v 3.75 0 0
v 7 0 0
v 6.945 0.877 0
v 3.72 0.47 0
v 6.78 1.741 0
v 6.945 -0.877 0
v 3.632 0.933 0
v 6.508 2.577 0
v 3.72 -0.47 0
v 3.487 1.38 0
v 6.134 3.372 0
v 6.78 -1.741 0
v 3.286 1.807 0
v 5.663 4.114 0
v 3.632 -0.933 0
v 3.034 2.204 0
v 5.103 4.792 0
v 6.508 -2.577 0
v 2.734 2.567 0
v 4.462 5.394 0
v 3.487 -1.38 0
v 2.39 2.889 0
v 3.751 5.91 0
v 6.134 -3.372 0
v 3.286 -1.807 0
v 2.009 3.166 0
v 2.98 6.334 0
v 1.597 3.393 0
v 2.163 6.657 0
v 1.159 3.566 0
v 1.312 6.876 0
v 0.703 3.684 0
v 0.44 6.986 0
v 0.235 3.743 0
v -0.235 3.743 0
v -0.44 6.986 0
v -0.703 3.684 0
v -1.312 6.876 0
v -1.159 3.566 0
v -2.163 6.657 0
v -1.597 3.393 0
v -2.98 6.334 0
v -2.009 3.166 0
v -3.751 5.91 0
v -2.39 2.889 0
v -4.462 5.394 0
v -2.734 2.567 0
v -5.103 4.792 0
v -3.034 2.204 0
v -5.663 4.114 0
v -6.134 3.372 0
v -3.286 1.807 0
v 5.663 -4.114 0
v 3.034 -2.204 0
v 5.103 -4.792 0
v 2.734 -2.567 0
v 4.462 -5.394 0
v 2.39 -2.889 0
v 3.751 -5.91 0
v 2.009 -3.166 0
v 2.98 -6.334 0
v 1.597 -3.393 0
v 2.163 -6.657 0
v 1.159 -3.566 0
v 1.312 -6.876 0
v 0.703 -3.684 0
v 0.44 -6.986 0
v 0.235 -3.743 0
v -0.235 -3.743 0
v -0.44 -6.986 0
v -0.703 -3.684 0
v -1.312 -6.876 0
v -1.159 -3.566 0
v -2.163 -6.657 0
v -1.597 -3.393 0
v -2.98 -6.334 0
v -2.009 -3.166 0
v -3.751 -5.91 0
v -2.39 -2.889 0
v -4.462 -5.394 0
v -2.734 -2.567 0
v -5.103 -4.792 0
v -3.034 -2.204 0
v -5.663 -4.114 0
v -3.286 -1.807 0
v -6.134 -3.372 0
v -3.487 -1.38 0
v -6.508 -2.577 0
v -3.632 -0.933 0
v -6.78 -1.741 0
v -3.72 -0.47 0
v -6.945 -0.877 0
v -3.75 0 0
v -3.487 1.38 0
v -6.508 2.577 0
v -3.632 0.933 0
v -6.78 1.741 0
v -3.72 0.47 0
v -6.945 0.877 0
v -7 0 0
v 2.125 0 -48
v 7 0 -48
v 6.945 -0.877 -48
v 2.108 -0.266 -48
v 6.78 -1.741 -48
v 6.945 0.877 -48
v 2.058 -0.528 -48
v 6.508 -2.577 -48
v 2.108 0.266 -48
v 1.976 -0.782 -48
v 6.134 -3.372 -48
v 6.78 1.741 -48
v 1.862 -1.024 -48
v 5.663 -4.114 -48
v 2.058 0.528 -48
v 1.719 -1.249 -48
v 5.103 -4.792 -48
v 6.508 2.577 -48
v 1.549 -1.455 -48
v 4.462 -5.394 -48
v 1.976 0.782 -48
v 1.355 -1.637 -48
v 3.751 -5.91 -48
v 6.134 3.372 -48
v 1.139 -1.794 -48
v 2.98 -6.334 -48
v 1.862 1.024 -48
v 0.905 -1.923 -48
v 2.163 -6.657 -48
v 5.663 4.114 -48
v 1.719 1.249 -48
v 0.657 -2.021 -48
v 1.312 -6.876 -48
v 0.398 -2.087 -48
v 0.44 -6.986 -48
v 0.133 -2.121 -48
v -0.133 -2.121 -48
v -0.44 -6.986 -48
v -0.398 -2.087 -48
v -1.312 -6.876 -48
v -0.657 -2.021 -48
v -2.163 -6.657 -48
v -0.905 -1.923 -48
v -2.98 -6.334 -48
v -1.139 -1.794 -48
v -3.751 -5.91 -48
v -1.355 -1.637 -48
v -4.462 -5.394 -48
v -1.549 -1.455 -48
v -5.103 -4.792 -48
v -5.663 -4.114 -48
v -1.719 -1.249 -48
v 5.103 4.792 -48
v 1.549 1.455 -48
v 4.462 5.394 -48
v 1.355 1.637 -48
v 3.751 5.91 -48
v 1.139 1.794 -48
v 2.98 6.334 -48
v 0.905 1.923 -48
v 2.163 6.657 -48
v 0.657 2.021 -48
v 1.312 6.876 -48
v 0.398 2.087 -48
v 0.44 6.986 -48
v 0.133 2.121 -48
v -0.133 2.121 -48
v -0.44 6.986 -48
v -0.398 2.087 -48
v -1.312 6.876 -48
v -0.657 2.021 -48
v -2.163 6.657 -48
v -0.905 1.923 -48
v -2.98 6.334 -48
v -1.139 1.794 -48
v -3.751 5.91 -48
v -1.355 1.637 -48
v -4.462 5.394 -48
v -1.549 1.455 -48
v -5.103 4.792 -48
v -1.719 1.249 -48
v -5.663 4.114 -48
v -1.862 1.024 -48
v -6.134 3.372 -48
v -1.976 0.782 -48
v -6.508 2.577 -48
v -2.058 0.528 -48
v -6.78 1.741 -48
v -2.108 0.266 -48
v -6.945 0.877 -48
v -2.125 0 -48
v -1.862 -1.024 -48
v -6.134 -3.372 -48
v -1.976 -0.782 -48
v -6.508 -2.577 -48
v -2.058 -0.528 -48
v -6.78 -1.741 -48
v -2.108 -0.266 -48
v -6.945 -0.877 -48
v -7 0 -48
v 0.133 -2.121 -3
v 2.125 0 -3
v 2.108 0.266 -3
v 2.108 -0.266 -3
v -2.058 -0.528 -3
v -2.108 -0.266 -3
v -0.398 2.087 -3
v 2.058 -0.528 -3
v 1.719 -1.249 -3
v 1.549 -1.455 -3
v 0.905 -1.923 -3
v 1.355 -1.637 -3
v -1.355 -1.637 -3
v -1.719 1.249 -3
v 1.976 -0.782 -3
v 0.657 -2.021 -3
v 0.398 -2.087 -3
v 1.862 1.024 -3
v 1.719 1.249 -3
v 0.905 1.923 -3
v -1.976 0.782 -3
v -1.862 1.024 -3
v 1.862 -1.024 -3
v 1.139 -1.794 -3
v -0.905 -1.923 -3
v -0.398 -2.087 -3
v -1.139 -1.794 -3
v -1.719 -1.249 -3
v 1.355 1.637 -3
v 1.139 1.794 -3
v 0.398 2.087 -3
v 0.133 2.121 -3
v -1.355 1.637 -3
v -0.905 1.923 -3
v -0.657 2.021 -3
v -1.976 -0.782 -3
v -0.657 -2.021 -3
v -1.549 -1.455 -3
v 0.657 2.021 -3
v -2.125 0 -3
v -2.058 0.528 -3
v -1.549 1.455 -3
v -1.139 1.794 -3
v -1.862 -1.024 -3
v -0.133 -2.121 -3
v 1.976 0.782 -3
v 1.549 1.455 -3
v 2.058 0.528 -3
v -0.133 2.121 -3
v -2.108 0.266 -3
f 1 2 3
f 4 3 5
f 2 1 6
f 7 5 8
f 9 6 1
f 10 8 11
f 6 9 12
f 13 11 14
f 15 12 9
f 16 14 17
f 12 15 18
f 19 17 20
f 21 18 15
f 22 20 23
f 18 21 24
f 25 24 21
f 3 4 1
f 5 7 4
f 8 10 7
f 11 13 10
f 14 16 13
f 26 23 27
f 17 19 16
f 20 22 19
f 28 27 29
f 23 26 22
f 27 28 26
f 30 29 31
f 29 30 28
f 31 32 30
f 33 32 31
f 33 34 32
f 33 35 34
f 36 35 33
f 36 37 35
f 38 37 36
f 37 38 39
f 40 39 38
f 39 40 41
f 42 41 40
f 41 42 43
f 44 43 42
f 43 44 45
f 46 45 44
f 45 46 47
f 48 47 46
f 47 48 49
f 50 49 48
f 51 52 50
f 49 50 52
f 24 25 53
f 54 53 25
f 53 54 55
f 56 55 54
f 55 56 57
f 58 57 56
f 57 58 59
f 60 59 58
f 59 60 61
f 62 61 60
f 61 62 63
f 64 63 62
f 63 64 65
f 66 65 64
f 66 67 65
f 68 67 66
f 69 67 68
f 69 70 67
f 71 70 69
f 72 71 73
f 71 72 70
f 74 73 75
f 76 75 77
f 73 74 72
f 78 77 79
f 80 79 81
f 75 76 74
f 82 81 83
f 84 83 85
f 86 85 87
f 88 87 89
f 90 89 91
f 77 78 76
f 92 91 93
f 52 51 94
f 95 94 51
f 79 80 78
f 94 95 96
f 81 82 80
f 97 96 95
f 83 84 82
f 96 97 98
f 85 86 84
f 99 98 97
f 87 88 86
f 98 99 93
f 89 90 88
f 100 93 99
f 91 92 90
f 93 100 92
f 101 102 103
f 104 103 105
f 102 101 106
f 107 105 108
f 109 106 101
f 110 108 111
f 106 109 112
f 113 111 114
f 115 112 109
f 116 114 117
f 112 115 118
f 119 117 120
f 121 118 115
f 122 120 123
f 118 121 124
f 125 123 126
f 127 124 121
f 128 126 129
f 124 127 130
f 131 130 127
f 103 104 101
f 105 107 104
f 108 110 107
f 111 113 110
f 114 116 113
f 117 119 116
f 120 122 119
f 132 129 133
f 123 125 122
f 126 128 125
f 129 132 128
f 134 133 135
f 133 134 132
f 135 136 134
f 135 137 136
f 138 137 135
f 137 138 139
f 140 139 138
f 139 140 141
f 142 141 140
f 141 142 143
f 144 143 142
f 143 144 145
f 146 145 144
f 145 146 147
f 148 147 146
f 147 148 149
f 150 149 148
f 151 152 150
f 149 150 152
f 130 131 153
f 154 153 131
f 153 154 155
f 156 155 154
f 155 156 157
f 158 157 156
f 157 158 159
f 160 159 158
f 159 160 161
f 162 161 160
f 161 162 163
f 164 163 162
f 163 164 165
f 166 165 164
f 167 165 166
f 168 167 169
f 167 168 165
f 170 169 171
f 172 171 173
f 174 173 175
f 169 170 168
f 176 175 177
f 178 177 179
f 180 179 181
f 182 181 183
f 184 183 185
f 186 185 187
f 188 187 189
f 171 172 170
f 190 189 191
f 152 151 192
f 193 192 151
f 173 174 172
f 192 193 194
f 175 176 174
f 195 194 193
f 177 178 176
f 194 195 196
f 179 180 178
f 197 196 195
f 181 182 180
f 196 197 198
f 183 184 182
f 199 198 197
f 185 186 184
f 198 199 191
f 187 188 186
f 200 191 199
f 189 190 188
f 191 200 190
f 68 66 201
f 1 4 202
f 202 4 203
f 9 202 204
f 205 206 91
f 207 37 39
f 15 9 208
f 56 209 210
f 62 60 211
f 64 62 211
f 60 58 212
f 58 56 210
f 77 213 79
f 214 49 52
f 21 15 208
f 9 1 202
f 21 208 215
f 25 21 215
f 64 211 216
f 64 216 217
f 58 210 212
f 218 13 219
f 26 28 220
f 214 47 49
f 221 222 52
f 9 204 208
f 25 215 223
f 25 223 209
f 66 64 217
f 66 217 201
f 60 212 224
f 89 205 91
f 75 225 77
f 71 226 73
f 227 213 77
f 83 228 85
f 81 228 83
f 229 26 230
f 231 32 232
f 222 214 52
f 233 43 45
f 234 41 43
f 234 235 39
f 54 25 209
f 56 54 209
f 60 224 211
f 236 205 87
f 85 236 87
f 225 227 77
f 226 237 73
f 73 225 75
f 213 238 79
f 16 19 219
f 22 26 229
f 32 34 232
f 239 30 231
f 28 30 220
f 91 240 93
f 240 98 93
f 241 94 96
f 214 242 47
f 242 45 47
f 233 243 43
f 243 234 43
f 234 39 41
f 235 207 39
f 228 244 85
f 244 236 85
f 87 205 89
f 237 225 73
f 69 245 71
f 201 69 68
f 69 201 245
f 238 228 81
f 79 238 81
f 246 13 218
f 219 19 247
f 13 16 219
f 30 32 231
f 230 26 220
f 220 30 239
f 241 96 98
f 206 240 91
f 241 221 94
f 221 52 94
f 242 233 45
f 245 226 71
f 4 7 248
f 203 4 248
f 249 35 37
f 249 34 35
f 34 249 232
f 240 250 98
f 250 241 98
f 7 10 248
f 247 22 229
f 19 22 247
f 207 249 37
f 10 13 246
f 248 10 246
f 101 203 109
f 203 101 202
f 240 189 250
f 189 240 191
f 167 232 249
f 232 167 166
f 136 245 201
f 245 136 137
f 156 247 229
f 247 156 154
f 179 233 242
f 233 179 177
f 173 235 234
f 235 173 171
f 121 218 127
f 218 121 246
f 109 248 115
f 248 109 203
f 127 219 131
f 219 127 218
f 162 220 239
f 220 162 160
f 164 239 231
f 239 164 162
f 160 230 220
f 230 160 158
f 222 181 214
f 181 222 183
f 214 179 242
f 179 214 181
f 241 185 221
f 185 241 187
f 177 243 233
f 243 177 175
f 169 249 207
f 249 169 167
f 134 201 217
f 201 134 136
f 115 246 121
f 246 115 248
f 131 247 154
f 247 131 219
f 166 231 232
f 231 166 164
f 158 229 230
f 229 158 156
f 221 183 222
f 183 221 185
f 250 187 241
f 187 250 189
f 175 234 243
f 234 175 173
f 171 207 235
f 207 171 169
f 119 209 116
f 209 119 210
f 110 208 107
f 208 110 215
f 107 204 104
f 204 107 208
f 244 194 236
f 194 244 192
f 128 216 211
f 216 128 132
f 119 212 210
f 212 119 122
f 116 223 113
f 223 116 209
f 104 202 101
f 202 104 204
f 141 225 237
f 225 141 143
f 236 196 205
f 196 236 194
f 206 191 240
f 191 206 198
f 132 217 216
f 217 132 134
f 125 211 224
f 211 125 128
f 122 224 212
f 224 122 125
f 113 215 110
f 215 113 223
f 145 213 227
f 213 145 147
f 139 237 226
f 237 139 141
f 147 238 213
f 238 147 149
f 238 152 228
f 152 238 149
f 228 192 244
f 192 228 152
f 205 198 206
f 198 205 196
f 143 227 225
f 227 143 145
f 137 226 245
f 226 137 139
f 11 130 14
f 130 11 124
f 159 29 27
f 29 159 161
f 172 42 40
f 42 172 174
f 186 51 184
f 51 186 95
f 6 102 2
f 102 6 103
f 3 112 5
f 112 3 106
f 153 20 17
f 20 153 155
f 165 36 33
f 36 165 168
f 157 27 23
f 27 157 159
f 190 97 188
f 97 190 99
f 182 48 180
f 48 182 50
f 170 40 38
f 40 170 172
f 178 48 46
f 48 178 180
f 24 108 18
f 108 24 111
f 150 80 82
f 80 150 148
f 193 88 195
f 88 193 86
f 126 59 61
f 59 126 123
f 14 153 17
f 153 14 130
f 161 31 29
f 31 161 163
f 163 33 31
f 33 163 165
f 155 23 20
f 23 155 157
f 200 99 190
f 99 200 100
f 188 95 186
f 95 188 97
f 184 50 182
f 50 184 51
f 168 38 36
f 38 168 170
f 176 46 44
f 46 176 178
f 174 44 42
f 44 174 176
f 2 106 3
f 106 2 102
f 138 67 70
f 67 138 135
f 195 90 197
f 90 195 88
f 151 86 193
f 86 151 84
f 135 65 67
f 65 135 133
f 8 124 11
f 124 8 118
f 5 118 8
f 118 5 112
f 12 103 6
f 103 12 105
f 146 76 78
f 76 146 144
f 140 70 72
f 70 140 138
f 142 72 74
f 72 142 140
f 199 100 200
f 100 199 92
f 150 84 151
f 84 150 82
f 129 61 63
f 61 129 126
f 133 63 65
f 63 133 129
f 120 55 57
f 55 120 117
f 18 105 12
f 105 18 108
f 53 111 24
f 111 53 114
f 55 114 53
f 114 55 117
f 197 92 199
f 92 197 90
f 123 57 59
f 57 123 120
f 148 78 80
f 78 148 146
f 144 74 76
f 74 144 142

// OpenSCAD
$fn = 50;


difference() {
	union() {
		translate(v = [0, 0, -48.0000000000]) {
			cylinder(h = 48, r = 7.0000000000);
		}
		cylinder(h = 0, r = 10.0000000000);
	}
	union() {
		translate(v = [0, 0, 0]) {
			rotate(a = [0, 0, 0]) {
				difference() {
					union() {
						#translate(v = [0, 0, -48.0000000000]) {
							cylinder(h = 48, r = 2.0000000000);
						}
						#translate(v = [0, 0, -3]) {
							cylinder(h = 3, r = 7.0000000000, r1 = 2.1250000000, r2 = 3.7500000000);
						}
						#translate(v = [0, 0, -48.0000000000]) {
							cylinder(h = 48, r = 2.1250000000);
						}
						#translate(v = [0, 0, -48.0000000000]) {
							cylinder(h = 48, r = 2.0000000000);
						}
					}
					union();
				}
			}
		}
	}
}
